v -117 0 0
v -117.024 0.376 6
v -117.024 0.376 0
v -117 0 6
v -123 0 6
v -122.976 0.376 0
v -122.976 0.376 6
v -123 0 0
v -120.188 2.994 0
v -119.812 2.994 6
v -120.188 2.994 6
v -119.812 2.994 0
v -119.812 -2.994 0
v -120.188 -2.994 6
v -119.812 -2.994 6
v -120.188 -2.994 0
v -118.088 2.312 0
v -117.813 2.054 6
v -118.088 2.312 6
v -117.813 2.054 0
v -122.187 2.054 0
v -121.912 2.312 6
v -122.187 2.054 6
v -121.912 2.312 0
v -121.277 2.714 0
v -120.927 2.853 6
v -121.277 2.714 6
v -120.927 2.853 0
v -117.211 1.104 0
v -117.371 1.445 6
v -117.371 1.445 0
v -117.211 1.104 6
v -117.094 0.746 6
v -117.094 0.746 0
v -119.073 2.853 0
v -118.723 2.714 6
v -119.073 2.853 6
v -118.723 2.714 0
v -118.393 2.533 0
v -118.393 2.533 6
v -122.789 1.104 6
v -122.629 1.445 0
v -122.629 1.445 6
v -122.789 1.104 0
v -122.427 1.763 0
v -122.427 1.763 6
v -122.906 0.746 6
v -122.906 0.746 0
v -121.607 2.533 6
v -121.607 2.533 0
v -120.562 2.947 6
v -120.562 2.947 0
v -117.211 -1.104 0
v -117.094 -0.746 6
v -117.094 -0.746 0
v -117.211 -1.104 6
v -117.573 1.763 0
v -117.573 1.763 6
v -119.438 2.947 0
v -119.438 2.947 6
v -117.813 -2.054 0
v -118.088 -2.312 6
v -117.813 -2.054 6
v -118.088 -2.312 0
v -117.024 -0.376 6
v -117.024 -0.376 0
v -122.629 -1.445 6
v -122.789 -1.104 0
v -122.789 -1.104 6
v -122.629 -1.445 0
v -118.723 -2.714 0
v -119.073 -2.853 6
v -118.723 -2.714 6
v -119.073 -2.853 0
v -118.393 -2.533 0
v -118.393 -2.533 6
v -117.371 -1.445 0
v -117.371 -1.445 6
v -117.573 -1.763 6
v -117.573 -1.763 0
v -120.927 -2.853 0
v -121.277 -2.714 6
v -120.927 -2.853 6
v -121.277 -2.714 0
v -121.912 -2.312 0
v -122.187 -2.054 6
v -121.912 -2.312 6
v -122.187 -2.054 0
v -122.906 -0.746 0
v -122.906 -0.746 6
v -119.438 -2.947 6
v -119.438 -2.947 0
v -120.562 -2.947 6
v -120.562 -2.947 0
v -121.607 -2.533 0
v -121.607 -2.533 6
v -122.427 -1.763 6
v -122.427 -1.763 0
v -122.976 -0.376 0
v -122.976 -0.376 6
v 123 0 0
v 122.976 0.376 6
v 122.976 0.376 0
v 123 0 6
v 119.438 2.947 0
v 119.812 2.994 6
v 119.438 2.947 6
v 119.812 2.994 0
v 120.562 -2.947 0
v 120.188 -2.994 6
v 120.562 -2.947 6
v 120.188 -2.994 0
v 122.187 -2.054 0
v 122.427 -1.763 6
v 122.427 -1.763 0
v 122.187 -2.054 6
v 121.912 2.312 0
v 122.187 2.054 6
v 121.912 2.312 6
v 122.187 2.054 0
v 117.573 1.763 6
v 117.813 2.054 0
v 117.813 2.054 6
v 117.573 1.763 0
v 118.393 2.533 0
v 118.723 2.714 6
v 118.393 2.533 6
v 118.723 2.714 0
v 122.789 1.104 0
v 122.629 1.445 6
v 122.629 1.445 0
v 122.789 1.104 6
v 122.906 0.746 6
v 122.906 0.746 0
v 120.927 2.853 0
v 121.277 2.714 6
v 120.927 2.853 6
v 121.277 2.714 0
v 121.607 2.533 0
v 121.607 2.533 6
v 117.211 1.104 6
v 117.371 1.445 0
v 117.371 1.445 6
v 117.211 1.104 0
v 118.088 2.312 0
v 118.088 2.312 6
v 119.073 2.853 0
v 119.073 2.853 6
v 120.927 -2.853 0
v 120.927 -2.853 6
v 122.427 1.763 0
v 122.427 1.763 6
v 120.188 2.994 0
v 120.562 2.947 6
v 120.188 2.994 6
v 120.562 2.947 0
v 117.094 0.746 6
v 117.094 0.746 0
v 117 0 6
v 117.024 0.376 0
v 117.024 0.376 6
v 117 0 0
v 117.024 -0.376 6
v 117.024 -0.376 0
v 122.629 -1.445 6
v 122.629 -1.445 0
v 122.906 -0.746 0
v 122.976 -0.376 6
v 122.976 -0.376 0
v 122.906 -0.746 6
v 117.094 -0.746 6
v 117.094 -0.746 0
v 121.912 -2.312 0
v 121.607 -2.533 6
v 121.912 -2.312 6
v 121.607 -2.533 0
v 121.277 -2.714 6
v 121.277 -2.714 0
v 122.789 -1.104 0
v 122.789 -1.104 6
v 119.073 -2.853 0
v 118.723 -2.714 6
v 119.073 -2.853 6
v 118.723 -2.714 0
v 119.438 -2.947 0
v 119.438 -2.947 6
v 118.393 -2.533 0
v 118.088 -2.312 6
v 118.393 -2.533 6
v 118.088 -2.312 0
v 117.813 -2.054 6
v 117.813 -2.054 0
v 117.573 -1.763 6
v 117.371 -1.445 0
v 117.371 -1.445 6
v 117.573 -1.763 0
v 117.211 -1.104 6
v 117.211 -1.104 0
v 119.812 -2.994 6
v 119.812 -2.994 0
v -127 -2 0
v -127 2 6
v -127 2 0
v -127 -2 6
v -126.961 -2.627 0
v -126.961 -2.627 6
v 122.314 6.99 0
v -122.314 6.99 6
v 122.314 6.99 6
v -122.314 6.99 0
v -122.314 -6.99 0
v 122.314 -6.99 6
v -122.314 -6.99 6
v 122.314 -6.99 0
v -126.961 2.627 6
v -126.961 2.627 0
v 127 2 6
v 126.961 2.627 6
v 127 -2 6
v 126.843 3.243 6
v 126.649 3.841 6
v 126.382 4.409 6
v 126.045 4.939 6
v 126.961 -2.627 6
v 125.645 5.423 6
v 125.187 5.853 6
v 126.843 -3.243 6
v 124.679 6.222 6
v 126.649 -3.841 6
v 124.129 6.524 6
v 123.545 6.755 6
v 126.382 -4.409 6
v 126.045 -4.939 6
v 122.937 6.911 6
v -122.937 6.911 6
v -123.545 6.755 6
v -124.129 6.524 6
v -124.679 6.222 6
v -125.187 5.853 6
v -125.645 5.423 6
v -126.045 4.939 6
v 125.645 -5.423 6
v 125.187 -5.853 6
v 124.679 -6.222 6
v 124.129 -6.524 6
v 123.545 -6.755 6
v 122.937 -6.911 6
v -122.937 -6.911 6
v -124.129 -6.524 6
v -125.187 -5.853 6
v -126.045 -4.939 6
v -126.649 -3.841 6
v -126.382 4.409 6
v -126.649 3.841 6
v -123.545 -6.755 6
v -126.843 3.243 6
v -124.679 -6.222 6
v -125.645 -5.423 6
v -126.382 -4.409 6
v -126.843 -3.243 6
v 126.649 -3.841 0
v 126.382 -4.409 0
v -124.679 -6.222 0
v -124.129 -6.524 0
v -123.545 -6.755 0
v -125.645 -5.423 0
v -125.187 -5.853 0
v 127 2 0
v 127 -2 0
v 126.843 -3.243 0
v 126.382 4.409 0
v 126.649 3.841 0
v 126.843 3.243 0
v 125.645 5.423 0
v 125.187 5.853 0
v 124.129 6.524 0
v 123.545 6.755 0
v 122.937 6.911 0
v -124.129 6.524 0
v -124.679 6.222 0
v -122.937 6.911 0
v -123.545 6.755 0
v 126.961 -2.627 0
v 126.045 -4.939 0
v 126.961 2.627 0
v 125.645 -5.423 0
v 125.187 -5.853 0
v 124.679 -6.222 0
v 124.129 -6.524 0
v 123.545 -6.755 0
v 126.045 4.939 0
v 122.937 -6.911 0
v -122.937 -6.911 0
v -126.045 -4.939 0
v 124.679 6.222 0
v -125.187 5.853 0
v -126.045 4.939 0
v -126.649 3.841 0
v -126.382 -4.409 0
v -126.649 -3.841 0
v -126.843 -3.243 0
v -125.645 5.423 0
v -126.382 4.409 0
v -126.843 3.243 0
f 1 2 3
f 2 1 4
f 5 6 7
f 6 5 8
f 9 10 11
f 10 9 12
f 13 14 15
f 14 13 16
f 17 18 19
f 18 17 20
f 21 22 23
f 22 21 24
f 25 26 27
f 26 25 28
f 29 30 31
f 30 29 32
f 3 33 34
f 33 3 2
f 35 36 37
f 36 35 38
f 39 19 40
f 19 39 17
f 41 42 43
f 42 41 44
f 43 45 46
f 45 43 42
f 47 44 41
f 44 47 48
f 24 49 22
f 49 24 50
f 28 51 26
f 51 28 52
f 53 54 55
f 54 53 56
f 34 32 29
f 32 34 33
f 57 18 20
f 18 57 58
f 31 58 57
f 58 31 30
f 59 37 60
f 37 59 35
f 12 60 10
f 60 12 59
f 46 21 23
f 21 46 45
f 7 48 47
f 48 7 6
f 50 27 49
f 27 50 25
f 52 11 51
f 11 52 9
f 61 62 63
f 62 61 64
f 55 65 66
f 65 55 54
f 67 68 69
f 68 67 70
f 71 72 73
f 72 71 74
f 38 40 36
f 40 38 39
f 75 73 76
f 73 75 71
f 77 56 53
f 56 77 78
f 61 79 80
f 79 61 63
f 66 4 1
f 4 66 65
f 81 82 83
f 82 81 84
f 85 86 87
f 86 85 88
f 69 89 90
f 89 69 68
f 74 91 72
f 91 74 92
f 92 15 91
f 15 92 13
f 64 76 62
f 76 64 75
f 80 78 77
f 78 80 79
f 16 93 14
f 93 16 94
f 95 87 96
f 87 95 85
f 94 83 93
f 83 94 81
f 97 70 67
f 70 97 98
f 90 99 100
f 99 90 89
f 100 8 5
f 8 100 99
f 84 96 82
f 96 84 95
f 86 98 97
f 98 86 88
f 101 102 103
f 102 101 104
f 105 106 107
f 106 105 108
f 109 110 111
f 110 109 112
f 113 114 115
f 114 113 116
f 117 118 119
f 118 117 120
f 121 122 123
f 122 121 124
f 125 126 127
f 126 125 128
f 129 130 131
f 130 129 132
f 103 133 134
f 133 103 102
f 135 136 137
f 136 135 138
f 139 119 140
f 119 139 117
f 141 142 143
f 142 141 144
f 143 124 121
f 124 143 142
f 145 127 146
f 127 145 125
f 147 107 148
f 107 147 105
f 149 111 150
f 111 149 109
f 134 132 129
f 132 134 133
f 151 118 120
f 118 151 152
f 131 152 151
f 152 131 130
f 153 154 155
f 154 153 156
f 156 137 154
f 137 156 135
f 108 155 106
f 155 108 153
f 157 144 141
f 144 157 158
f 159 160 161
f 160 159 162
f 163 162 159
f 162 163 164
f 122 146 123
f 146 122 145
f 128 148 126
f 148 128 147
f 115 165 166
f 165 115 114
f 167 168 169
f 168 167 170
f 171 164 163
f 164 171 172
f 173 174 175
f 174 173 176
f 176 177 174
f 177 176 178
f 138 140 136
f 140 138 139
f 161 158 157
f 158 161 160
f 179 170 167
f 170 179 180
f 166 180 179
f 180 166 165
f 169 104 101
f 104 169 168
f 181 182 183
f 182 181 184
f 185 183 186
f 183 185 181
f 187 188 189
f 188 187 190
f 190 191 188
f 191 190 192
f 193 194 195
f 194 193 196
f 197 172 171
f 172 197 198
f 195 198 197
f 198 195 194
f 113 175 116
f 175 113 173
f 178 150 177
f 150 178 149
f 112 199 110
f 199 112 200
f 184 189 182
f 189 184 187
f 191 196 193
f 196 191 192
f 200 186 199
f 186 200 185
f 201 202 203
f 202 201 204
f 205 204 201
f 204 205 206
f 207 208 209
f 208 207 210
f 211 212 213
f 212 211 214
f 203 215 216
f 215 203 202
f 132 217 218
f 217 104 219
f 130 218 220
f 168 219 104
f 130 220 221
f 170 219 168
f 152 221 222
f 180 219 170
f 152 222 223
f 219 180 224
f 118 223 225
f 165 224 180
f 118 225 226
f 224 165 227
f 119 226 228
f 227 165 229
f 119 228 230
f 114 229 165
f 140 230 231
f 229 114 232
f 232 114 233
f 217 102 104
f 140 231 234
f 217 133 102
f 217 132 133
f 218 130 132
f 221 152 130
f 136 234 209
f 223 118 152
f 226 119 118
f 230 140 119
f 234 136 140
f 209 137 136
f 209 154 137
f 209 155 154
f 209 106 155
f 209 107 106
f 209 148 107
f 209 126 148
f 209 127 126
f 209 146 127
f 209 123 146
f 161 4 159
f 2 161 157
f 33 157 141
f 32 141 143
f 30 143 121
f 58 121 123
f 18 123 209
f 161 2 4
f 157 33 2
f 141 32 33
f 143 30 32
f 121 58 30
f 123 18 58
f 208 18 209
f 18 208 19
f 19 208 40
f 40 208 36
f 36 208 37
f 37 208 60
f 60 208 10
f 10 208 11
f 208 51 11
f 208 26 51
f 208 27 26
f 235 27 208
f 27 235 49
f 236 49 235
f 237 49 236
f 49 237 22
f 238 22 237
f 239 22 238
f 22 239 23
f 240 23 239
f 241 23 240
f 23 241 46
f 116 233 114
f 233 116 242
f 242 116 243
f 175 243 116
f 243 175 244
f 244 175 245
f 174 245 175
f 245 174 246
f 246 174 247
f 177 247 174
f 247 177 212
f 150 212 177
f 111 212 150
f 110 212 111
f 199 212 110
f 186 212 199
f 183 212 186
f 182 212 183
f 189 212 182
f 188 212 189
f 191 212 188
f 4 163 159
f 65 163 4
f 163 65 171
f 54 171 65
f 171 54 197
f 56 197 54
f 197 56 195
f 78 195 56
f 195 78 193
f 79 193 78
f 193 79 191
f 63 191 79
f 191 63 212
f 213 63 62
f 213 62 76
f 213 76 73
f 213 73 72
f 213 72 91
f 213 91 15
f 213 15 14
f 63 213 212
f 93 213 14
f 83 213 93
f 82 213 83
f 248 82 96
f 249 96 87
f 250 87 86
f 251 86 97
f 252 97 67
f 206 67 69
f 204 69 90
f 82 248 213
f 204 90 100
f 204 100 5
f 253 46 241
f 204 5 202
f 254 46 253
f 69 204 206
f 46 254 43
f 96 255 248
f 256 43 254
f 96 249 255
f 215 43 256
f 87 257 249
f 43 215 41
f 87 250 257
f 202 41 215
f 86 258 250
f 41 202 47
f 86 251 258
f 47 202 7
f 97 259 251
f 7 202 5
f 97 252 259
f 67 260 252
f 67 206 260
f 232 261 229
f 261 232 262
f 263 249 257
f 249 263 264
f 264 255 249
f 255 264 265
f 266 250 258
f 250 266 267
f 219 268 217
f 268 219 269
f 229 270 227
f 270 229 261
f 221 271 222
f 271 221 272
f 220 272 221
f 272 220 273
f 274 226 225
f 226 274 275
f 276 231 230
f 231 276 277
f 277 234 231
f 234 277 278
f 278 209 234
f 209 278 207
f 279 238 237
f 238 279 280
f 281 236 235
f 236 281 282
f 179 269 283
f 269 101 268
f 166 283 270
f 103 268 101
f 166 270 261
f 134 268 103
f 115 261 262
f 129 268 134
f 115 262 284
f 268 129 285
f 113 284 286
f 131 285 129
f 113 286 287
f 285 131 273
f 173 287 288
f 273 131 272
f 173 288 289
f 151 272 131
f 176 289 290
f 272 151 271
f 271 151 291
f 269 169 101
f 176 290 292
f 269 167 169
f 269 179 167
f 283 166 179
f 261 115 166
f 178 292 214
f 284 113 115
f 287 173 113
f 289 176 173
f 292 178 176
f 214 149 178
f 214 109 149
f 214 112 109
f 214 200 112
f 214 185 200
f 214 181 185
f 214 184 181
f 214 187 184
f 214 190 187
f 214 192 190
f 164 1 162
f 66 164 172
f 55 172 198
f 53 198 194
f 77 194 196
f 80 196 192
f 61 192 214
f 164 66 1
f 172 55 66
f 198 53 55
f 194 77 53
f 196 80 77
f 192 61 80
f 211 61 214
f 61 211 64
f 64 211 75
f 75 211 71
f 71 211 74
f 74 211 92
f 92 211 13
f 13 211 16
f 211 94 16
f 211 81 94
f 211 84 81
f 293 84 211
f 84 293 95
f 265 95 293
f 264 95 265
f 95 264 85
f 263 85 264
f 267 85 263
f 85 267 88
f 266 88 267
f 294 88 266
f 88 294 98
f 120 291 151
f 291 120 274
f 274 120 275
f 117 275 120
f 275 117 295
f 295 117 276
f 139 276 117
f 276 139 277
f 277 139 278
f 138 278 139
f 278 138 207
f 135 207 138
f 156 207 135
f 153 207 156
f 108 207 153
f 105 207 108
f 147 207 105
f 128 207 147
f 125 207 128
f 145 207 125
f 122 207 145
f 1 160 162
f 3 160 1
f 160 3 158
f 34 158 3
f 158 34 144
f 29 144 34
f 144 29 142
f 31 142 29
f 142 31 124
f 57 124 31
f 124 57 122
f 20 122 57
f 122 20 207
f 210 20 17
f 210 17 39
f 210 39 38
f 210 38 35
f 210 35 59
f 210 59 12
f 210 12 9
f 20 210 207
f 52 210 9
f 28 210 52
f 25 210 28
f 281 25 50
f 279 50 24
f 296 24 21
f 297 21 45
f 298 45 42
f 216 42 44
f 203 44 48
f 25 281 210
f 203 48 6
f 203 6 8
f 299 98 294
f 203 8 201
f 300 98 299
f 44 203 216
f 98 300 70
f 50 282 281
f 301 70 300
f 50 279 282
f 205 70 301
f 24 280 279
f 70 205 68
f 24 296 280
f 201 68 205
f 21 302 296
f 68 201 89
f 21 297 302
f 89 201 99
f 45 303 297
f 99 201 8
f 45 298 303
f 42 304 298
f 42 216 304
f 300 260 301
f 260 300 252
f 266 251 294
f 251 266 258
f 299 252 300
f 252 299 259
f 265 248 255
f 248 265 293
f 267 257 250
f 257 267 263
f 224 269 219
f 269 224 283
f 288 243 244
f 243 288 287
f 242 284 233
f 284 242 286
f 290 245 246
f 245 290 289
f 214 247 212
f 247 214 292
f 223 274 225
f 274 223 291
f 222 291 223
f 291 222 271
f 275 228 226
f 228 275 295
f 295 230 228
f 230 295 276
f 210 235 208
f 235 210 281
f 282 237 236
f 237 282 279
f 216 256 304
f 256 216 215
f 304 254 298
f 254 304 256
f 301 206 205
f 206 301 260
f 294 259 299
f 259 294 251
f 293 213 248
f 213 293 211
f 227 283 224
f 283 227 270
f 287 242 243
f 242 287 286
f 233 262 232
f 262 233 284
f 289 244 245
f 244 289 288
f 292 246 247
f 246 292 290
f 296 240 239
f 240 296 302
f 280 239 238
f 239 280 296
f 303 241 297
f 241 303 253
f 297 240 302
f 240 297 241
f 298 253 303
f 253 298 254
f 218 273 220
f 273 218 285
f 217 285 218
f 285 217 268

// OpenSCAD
$fn = 50;


difference() {
	union() {
		hull() {
			translate(v = [-122.0000000000, 2.0000000000, 0]) {
				cylinder(h = 6, r = 5);
			}
			translate(v = [122.0000000000, 2.0000000000, 0]) {
				cylinder(h = 6, r = 5);
			}
			translate(v = [-122.0000000000, -2.0000000000, 0]) {
				cylinder(h = 6, r = 5);
			}
			translate(v = [122.0000000000, -2.0000000000, 0]) {
				cylinder(h = 6, r = 5);
			}
		}
	}
	union() {
		translate(v = [-120.0000000000, 0.0000000000, -100.0000000000]) {
			cylinder(h = 200, r = 3.0000000000);
		}
		translate(v = [-120.0000000000, 0.0000000000, -100.0000000000]) {
			cylinder(h = 200, r = 3.0000000000);
		}
		translate(v = [120.0000000000, 0.0000000000, -100.0000000000]) {
			cylinder(h = 200, r = 3.0000000000);
		}
		translate(v = [120.0000000000, 0.0000000000, -100.0000000000]) {
			cylinder(h = 200, r = 3.0000000000);
		}
	}
}
